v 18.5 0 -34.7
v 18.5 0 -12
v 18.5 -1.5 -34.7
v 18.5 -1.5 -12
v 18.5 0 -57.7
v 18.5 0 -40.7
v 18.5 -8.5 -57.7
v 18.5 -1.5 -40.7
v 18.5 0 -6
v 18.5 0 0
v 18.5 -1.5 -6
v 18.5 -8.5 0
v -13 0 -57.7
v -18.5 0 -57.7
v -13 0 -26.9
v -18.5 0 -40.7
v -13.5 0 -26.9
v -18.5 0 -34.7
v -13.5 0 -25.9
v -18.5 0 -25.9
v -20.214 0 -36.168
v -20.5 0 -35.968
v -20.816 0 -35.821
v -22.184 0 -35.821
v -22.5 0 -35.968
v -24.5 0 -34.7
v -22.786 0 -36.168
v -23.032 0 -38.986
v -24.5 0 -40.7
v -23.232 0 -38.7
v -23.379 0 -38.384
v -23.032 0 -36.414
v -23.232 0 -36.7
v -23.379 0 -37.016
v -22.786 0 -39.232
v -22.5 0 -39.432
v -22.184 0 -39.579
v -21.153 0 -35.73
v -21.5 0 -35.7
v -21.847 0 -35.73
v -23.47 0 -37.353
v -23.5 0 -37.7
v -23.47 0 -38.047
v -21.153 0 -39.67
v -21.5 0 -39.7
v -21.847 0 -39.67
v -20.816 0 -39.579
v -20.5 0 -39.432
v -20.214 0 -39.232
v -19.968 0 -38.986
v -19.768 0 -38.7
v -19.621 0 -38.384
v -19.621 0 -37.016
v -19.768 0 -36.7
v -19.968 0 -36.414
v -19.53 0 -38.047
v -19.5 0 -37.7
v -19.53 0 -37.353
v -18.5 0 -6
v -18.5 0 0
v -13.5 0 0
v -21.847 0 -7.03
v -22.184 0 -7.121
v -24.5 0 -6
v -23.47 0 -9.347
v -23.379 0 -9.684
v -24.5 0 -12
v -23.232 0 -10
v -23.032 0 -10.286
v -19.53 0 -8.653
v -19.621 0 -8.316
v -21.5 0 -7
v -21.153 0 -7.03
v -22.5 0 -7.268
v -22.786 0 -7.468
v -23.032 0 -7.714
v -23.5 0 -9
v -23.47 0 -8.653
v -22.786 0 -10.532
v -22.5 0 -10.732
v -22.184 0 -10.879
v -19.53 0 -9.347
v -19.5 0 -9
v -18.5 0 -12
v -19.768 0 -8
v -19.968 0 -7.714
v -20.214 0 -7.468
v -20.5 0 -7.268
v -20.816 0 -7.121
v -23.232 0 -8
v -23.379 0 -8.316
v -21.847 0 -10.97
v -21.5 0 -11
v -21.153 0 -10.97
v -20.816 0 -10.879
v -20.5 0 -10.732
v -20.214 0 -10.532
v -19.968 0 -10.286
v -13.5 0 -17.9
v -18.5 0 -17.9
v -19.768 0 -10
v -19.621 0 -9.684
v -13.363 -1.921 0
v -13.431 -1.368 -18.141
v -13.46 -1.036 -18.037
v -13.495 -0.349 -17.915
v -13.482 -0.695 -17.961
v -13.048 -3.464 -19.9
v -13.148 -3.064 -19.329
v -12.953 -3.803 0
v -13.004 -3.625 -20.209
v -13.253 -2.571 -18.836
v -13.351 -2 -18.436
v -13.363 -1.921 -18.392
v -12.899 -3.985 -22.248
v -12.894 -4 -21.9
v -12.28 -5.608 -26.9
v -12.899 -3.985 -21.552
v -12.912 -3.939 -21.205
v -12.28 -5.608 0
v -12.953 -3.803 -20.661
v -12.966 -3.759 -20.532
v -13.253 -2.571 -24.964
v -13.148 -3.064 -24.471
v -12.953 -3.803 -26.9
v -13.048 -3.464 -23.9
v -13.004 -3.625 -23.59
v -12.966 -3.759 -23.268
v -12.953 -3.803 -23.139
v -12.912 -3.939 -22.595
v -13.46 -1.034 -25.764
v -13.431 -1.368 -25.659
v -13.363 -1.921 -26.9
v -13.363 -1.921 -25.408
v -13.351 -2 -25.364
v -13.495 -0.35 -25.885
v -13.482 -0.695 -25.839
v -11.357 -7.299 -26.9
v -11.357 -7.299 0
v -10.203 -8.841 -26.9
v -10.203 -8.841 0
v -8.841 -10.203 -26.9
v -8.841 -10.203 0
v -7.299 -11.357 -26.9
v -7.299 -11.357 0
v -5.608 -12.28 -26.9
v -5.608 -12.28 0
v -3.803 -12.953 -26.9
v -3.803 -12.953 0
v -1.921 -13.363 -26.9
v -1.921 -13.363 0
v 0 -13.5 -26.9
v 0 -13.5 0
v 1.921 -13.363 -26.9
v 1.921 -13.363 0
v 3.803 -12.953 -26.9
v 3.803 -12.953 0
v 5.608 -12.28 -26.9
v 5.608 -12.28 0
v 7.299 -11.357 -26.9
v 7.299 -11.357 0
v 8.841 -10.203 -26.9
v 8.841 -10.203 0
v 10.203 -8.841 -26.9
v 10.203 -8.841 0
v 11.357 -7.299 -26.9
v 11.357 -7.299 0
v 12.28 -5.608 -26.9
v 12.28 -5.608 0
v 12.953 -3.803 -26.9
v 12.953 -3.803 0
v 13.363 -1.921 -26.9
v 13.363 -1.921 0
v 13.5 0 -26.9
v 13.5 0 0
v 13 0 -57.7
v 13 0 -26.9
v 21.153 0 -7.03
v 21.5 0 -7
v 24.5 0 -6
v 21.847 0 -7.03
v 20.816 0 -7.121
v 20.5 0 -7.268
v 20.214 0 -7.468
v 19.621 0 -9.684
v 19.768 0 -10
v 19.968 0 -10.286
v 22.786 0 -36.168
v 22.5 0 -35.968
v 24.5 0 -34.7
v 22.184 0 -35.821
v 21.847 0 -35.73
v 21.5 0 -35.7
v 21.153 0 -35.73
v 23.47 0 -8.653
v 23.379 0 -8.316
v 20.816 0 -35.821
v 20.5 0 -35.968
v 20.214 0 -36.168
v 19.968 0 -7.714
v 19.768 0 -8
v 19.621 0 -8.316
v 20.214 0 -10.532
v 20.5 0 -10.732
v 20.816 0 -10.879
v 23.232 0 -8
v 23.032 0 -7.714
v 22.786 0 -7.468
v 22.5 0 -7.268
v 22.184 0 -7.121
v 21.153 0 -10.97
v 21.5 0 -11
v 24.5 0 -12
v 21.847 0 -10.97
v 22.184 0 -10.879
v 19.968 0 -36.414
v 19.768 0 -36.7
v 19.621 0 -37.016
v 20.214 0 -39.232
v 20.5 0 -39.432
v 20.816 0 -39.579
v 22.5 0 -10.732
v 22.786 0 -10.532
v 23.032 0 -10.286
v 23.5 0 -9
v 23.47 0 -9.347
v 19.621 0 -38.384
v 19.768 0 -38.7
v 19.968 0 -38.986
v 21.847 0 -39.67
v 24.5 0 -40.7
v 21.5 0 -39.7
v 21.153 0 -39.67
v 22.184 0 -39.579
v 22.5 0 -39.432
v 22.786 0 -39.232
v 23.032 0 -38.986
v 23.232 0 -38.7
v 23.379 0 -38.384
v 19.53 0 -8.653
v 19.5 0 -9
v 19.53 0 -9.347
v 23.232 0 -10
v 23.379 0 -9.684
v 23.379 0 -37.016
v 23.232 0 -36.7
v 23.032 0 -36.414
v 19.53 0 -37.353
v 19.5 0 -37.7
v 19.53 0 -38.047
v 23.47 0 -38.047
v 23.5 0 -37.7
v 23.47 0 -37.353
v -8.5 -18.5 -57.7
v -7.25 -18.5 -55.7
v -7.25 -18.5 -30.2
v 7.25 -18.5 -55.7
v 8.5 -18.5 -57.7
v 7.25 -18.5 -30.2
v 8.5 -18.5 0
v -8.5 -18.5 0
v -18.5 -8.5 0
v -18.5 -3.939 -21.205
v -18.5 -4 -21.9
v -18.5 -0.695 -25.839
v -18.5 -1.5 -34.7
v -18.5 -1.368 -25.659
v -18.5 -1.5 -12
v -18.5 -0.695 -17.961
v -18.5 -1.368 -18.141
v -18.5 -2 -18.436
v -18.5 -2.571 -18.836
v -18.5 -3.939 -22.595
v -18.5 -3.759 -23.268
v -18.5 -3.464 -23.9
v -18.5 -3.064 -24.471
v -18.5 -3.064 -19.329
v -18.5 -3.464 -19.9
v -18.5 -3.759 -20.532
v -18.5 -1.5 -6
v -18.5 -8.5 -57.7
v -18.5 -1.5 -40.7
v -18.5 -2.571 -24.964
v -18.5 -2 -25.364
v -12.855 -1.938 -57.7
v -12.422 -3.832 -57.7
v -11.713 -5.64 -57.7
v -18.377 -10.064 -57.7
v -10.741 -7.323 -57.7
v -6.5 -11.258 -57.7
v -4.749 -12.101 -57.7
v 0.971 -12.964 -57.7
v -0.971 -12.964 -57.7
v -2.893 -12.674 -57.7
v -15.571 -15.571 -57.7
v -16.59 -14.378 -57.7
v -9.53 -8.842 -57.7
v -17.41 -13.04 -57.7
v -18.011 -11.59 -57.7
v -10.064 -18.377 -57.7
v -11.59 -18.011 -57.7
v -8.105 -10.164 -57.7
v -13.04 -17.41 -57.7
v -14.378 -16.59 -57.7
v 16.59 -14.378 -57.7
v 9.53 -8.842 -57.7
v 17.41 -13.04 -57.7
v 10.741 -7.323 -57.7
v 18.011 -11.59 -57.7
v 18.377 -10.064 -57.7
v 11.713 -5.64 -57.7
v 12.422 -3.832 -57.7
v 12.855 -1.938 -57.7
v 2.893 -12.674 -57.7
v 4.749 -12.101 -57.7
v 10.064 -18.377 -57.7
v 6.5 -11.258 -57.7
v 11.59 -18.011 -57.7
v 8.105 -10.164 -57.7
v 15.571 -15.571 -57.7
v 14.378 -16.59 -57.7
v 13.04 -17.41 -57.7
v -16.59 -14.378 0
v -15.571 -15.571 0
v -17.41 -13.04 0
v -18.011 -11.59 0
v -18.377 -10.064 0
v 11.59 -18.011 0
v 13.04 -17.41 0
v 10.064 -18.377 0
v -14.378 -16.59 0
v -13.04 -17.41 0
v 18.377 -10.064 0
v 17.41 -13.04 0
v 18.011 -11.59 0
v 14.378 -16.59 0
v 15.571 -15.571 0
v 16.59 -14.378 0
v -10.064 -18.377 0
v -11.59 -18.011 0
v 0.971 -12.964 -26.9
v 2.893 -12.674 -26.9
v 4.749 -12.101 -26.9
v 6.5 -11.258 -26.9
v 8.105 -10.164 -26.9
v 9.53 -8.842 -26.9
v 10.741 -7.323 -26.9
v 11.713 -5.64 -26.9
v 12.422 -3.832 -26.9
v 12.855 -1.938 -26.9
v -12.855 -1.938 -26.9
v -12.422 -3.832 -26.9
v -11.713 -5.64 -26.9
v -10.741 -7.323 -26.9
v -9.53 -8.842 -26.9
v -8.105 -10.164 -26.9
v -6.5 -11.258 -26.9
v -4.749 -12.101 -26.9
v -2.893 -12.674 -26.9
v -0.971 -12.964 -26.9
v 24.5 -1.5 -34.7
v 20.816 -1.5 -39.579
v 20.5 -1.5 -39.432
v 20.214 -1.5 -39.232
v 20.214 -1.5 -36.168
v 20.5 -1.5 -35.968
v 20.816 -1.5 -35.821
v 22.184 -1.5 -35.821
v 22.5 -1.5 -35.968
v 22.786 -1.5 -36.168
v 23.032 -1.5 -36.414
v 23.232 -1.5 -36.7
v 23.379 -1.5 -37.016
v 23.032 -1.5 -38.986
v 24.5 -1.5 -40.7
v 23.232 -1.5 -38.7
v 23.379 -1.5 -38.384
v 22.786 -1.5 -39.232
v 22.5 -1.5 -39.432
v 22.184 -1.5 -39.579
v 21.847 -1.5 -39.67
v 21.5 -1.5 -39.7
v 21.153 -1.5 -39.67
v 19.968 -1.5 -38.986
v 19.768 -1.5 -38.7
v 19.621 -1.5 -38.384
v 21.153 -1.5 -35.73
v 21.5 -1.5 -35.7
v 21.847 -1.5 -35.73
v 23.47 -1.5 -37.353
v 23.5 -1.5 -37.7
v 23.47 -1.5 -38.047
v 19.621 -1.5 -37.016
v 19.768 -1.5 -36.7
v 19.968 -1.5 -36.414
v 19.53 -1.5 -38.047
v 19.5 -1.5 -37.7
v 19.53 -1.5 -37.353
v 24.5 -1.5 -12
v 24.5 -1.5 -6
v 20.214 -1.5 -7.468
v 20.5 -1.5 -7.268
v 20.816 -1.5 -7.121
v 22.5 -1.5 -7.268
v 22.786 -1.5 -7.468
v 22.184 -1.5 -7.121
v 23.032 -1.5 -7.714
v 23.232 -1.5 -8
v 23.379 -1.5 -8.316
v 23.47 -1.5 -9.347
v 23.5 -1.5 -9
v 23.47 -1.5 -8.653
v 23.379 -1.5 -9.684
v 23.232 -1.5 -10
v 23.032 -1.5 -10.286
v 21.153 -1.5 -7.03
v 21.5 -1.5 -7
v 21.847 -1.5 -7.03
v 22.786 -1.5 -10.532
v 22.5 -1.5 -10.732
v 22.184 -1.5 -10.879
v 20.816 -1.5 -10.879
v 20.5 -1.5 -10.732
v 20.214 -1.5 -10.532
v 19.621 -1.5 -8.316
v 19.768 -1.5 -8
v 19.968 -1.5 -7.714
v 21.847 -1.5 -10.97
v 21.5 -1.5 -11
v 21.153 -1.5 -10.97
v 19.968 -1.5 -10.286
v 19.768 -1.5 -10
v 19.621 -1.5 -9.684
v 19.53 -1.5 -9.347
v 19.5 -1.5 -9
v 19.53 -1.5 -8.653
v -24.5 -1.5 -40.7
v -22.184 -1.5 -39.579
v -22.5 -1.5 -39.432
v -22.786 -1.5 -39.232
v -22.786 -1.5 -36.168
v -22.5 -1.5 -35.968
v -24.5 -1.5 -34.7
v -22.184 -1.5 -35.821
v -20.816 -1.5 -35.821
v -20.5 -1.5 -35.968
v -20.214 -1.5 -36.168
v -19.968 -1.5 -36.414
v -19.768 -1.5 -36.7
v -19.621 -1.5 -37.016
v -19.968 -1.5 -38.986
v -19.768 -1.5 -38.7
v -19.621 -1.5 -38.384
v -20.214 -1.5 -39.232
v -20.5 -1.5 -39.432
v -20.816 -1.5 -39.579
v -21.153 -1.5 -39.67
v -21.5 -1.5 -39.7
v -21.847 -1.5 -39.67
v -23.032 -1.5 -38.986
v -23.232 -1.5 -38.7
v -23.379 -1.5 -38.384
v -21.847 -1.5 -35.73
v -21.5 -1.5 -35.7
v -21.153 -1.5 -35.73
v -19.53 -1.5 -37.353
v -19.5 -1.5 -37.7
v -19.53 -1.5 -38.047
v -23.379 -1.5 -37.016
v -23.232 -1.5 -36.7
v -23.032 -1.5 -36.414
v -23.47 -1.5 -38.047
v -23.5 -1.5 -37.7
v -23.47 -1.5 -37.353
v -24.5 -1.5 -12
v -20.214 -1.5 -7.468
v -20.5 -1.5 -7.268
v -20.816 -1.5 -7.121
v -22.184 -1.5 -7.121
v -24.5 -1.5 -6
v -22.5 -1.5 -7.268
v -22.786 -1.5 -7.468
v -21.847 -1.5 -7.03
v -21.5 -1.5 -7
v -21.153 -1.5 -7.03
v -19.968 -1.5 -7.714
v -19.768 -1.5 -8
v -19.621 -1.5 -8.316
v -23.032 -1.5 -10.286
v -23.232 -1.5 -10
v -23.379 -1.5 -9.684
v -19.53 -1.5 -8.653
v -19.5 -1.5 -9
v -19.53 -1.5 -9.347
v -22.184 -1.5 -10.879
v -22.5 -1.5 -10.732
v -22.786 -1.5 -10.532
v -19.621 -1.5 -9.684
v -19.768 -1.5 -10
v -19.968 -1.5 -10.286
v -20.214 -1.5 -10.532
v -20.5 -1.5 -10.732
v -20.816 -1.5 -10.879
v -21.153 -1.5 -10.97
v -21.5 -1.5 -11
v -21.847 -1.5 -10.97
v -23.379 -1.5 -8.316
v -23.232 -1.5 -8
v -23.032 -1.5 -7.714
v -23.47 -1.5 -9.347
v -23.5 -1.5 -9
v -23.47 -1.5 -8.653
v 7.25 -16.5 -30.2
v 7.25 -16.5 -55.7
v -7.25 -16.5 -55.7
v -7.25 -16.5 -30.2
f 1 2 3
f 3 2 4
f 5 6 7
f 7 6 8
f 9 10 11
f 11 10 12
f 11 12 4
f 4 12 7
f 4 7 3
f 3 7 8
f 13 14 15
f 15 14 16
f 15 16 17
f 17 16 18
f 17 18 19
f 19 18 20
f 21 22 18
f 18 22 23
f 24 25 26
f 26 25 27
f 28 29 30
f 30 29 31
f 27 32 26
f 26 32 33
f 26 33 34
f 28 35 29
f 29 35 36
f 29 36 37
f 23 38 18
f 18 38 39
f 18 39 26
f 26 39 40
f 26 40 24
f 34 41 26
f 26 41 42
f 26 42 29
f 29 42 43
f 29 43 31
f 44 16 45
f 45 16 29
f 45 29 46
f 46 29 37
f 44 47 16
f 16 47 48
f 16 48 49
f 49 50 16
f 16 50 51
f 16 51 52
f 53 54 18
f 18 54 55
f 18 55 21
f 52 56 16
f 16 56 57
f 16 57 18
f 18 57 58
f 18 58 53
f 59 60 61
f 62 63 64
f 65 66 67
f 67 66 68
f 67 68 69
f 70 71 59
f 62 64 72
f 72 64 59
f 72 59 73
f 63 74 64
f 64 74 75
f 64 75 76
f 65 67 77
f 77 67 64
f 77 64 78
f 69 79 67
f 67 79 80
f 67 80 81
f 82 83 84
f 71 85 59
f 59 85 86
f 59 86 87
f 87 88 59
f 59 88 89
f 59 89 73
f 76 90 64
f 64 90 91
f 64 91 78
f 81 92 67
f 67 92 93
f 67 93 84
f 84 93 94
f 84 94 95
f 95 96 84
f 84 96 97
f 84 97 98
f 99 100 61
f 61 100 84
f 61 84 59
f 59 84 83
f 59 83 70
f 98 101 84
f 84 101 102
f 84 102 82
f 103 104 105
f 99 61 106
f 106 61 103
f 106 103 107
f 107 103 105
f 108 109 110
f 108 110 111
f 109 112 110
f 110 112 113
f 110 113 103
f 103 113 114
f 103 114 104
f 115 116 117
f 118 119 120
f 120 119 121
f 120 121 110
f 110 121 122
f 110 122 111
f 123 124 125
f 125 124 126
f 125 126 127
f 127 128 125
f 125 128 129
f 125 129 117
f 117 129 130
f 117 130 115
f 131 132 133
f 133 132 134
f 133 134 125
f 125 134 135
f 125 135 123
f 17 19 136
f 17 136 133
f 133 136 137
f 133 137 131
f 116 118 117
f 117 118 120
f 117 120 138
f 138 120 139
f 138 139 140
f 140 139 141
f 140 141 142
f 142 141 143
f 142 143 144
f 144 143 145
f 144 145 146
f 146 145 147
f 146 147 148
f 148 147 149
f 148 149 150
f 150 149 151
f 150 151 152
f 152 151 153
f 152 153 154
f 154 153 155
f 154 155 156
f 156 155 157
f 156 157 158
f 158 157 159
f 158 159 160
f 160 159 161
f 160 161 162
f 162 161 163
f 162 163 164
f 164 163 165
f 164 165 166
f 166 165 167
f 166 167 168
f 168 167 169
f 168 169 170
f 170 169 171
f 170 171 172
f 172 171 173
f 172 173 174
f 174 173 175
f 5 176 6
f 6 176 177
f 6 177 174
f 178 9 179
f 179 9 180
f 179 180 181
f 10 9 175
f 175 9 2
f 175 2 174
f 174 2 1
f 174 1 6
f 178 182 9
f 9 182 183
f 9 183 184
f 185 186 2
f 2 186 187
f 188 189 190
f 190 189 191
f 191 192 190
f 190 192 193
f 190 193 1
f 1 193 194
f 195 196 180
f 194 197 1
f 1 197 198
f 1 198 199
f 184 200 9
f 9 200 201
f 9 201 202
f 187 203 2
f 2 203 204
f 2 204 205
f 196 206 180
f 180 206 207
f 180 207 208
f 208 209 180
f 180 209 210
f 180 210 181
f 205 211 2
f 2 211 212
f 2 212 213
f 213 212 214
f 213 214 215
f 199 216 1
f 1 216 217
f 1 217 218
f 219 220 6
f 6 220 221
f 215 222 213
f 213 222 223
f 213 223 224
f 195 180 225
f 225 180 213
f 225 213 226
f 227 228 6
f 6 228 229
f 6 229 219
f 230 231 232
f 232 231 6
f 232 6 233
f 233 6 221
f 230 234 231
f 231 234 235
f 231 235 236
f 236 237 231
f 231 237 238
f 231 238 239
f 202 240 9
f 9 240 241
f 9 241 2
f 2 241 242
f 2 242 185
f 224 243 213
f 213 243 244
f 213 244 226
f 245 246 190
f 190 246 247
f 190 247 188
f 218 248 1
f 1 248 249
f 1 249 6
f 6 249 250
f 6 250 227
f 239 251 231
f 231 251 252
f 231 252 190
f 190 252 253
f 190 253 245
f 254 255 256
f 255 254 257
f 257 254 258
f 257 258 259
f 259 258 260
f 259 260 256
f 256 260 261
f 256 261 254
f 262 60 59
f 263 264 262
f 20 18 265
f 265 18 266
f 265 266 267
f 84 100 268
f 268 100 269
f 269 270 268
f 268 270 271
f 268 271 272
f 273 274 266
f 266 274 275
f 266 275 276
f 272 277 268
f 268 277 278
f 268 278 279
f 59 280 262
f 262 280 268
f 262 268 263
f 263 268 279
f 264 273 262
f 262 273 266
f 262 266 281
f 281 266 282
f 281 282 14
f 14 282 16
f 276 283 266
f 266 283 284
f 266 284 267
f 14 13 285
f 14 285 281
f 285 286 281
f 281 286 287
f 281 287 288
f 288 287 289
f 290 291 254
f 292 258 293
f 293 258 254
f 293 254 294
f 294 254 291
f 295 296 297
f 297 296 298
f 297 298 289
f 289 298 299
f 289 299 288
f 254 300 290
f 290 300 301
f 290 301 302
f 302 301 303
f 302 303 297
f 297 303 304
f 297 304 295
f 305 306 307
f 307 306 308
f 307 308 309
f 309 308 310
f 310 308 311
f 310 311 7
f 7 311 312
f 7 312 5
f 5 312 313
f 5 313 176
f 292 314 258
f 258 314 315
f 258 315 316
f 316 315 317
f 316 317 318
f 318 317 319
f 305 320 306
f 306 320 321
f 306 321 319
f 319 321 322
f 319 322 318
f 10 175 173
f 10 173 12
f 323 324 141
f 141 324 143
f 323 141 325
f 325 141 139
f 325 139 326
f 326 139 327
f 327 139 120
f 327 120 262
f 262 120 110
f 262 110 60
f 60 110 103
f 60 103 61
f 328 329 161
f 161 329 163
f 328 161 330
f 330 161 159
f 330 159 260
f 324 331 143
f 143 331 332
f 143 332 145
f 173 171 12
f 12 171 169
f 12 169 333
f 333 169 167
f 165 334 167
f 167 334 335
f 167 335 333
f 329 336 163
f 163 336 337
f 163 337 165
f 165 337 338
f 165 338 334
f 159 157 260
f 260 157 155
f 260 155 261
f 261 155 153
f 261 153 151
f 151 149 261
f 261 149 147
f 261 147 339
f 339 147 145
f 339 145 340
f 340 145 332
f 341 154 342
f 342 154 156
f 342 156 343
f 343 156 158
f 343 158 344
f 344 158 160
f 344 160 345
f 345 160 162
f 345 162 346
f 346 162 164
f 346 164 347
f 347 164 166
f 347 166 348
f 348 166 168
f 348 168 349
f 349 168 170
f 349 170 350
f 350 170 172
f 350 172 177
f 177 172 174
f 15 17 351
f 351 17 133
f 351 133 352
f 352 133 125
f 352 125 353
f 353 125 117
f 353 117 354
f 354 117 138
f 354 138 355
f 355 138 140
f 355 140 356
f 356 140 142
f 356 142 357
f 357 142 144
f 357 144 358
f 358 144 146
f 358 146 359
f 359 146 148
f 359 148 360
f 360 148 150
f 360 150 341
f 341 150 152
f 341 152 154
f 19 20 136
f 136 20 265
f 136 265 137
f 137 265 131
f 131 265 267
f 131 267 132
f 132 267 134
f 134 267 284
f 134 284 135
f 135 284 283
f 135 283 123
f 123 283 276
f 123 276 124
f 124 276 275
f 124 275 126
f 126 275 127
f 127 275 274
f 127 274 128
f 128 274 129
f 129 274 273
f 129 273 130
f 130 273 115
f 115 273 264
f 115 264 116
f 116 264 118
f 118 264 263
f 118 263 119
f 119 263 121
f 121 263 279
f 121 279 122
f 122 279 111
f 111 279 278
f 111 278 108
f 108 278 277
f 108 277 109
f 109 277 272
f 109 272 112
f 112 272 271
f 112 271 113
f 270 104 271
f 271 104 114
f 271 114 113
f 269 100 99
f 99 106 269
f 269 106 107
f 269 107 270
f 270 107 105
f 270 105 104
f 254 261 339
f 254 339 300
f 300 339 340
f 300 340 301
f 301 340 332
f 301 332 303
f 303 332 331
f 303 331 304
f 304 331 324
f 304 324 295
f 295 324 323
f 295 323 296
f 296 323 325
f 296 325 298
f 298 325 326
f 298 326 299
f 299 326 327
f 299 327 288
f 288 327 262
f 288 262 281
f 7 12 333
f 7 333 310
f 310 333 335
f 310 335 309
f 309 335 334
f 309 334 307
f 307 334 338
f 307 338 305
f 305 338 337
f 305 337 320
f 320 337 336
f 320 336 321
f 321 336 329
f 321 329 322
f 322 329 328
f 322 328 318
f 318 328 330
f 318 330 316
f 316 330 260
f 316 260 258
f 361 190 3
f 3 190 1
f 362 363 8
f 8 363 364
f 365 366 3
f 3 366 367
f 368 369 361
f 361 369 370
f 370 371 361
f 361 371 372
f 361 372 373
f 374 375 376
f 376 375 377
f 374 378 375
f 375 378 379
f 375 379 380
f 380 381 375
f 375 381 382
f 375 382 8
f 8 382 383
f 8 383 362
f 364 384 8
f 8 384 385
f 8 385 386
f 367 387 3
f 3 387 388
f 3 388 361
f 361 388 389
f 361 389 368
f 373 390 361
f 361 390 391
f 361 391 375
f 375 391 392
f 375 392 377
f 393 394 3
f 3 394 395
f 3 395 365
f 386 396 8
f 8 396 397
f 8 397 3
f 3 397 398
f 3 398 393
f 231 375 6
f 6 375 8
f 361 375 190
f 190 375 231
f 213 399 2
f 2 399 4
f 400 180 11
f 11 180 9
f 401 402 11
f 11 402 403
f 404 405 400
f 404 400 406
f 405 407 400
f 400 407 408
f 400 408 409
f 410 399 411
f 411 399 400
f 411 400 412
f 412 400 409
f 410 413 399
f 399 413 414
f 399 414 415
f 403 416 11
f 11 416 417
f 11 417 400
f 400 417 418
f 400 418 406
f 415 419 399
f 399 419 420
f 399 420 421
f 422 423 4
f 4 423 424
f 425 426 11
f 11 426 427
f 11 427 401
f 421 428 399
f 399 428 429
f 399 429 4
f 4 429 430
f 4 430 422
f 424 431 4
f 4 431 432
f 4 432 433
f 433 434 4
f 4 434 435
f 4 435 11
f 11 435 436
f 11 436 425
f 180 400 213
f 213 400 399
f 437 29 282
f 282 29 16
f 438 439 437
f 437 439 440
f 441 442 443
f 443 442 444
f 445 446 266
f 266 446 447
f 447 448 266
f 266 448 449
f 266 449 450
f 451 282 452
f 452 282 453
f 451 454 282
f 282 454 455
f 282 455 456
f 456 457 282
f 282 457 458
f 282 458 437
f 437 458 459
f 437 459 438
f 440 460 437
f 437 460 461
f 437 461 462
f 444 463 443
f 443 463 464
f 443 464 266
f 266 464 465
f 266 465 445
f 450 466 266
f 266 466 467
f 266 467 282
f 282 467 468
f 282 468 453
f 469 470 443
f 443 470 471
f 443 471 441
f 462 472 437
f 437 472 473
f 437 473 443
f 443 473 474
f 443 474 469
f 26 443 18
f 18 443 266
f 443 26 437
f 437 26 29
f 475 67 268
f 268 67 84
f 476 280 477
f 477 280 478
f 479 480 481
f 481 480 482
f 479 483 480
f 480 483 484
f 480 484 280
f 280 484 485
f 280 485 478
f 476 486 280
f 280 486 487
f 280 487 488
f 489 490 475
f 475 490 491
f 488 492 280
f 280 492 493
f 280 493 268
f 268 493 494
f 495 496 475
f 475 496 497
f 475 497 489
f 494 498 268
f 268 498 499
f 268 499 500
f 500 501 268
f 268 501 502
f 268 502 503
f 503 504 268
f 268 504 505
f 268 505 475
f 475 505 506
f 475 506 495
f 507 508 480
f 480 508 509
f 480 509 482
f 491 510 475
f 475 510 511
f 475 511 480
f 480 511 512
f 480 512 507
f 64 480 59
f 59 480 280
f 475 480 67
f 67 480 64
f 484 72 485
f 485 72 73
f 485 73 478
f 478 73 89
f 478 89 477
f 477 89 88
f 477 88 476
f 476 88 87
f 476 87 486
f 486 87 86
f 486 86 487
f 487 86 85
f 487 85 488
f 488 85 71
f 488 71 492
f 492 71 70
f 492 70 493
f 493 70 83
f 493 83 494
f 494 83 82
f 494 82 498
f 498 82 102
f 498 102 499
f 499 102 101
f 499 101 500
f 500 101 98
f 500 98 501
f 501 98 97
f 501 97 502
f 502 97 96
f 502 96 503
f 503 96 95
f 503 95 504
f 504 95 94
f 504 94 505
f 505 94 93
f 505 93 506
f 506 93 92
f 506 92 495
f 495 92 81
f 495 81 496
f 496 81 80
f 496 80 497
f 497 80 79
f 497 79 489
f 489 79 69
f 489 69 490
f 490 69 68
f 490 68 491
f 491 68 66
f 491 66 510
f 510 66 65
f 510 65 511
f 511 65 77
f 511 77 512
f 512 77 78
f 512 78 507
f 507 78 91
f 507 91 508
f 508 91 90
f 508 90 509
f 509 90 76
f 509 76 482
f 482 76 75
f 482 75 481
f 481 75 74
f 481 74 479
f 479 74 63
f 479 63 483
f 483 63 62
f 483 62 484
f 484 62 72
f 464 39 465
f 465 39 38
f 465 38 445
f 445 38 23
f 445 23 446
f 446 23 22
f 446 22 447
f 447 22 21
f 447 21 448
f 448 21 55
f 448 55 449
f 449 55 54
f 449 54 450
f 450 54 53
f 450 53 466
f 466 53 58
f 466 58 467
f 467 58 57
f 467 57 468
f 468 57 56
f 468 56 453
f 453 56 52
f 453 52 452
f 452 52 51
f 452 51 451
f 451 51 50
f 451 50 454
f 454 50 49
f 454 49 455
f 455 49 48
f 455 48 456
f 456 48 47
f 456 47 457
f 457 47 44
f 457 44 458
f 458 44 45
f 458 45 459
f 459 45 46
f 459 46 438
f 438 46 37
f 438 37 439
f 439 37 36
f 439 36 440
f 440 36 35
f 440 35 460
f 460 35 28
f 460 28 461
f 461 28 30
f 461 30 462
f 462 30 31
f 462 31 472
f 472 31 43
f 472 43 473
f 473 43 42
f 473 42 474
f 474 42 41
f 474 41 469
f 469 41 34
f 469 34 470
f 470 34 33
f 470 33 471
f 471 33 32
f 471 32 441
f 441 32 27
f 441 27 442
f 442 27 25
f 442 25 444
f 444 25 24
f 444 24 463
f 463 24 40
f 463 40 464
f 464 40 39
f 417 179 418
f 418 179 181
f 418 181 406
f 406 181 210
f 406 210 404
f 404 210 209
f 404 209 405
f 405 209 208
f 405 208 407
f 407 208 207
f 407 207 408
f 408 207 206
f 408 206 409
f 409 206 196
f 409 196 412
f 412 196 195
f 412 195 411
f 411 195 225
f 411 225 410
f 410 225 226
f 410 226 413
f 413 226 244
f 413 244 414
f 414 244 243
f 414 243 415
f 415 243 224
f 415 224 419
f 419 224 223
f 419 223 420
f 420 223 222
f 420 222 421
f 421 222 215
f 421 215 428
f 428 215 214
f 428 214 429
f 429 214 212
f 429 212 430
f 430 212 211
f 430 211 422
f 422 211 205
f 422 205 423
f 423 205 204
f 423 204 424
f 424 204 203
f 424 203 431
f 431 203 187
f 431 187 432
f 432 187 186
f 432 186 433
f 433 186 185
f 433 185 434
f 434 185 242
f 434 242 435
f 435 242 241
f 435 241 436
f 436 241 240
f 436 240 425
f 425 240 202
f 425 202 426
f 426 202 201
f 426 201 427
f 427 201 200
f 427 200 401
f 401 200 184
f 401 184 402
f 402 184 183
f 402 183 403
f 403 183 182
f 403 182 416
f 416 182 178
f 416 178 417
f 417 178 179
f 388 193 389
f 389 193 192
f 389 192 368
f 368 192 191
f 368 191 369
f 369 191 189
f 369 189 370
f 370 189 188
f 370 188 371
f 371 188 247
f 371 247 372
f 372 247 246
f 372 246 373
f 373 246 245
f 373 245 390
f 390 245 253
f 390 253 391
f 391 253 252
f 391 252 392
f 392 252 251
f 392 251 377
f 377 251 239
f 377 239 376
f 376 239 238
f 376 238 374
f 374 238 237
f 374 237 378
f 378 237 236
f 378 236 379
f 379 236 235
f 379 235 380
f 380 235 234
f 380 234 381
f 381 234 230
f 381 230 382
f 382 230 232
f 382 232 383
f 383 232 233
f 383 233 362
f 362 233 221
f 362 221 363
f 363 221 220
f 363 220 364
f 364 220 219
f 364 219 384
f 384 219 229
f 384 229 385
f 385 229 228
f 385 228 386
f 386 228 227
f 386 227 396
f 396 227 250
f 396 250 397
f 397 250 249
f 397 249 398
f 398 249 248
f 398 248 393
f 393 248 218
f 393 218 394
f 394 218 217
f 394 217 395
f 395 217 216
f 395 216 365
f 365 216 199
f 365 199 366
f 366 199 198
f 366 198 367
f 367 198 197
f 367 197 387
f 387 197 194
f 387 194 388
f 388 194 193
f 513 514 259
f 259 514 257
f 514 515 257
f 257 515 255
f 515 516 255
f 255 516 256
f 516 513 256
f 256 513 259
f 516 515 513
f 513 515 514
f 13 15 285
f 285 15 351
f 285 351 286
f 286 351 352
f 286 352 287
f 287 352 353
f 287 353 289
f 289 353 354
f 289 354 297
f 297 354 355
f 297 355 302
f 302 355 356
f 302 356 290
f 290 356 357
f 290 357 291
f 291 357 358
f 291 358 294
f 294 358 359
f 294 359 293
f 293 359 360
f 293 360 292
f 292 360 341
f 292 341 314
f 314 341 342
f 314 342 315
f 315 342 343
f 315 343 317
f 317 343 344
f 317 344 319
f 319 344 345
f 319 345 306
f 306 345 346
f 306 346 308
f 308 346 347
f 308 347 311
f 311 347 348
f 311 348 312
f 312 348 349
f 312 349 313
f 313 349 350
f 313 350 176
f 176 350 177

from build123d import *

# Parameters (mm, degrees)
EXTRUDE_1_DEPTH     = 57.7
EXTRUDE_2_DEPTH     = 30.8
SKETCH_5_R          = 4
CUT_EXTRUDE_1_DEPTH = 15
FILLET_1_R          = 10
SKETCH_6_W          = 6
SKETCH_6_H          = 1.5
EXTRUDE_3_DEPTH     = 6
EXTRUDE_START       = -37
SKETCH_6_3_W        = 6
SKETCH_6_3_H        = 1.5
EXTRUDE_4_DEPTH     = 6
SKETCH_7_R          = 2
CUT_EXTRUDE_2_DEPTH = 6
SKETCH_8_W          = 14.5
SKETCH_8_H          = 25.5
CUT_EXTRUDE_3_DEPTH = 2
SKETCH_9_R          = 13
CUT_EXTRUDE_4_DEPTH = 44.487239508


with BuildPart() as part:
    # 스케치1 → 보스-돌출1 (new body)
    with BuildSketch(Plane.XY):
        with BuildLine():
            Line((-13.5, 0), (-18.5, 0))
            Line((-18.5, 0), (-18.5, -18.5))
            Line((-18.5, -18.5), (18.5, -18.5))
            Line((18.5, -18.5), (18.5, 0))
            Line((18.5, 0), (13.5, 0))
            ThreePointArc((13.5, 0), (0, -13.5), (-13.5, 0))
        make_face()
    extrude(amount=-EXTRUDE_1_DEPTH)

    # 스케치3 → 보스-돌출2 (add)
    with BuildSketch(Plane.XY.offset(-26.9)):
        with BuildLine():
            Line((-13.5, 0), (-11.5, 0))
            ThreePointArc((-11.5, 0), (0, -11.5), (11.5, 0))
            Line((11.5, 0), (13.5, 0))
            ThreePointArc((13.5, 0), (0, -13.5), (-13.5, 0))
        make_face()
    extrude(amount=-EXTRUDE_2_DEPTH)

    # 스케치5 → 컷-돌출1 (cut)
    with BuildSketch(Plane.ZY.offset(18.5)):
        with Locations((-21.9, 0)):
            Circle(SKETCH_5_R)
    extrude(amount=-CUT_EXTRUDE_1_DEPTH, mode=Mode.SUBTRACT)

    # 필렛1
    fillet_1_edges = [part.edges().sort_by_distance(p)[0] for p in [
        (18.5, -18.5, -28.85),
        (-18.5, -18.5, -28.85),
    ]]
    fillet(fillet_1_edges, radius=FILLET_1_R)

    # 스케치6 → 보스-돌출3 (add)
    with BuildSketch(Plane(origin=(18.5, 0, 0), x_dir=(0, 0, -1), z_dir=(1, 0, 0))):
        with Locations((37.7, -0.75)):
            Rectangle(SKETCH_6_W, SKETCH_6_H)
        with Locations((9, -0.75)):
            Rectangle(SKETCH_6_W, SKETCH_6_H)
    extrude(amount=EXTRUDE_3_DEPTH)

    # 스케치6<3> → 보스-돌출4 (add)
    with BuildSketch(Plane(origin=(18.5, 0, 0), x_dir=(0, 0, -1), z_dir=(1, 0, 0)).offset(EXTRUDE_START)):
        with Locations((37.7, -0.75)):
            Rectangle(SKETCH_6_3_W, SKETCH_6_3_H)
        with Locations((9, -0.75)):
            Rectangle(SKETCH_6_3_W, SKETCH_6_3_H)
    extrude(amount=-EXTRUDE_4_DEPTH)

    # 스케치7 → 컷-돌출2 (cut)
    with BuildSketch(Plane(origin=(0, 0, 0), x_dir=(1, 0, 0), z_dir=(0, 1, 0))):
        with Locations(Location((21.5, 9, 0), (0, 0, 270))):
            Circle(SKETCH_7_R)
        with Locations(Location((21.5, 37.7, 0), (0, 0, 270))):
            Circle(SKETCH_7_R)
        with Locations(Location((-21.5, 9, 0), (0, 0, 180))):
            Circle(SKETCH_7_R)
        with Locations((-21.5, 37.7)):
            Circle(SKETCH_7_R)
    extrude(amount=-CUT_EXTRUDE_2_DEPTH, mode=Mode.SUBTRACT)

    # 스케치8 → 컷-돌출3 (cut)
    with BuildSketch(Plane.XZ.offset(18.5)):
        with Locations((0, -42.95)):
            Rectangle(SKETCH_8_W, SKETCH_8_H)
    extrude(amount=-CUT_EXTRUDE_3_DEPTH, mode=Mode.SUBTRACT)

    # 스케치9 → 컷-돌출4 (cut, through all)
    with BuildSketch(Plane.XY.offset(-26.9)):
        Circle(SKETCH_9_R)
    extrude(amount=-CUT_EXTRUDE_4_DEPTH, mode=Mode.SUBTRACT)


solid = part.part
